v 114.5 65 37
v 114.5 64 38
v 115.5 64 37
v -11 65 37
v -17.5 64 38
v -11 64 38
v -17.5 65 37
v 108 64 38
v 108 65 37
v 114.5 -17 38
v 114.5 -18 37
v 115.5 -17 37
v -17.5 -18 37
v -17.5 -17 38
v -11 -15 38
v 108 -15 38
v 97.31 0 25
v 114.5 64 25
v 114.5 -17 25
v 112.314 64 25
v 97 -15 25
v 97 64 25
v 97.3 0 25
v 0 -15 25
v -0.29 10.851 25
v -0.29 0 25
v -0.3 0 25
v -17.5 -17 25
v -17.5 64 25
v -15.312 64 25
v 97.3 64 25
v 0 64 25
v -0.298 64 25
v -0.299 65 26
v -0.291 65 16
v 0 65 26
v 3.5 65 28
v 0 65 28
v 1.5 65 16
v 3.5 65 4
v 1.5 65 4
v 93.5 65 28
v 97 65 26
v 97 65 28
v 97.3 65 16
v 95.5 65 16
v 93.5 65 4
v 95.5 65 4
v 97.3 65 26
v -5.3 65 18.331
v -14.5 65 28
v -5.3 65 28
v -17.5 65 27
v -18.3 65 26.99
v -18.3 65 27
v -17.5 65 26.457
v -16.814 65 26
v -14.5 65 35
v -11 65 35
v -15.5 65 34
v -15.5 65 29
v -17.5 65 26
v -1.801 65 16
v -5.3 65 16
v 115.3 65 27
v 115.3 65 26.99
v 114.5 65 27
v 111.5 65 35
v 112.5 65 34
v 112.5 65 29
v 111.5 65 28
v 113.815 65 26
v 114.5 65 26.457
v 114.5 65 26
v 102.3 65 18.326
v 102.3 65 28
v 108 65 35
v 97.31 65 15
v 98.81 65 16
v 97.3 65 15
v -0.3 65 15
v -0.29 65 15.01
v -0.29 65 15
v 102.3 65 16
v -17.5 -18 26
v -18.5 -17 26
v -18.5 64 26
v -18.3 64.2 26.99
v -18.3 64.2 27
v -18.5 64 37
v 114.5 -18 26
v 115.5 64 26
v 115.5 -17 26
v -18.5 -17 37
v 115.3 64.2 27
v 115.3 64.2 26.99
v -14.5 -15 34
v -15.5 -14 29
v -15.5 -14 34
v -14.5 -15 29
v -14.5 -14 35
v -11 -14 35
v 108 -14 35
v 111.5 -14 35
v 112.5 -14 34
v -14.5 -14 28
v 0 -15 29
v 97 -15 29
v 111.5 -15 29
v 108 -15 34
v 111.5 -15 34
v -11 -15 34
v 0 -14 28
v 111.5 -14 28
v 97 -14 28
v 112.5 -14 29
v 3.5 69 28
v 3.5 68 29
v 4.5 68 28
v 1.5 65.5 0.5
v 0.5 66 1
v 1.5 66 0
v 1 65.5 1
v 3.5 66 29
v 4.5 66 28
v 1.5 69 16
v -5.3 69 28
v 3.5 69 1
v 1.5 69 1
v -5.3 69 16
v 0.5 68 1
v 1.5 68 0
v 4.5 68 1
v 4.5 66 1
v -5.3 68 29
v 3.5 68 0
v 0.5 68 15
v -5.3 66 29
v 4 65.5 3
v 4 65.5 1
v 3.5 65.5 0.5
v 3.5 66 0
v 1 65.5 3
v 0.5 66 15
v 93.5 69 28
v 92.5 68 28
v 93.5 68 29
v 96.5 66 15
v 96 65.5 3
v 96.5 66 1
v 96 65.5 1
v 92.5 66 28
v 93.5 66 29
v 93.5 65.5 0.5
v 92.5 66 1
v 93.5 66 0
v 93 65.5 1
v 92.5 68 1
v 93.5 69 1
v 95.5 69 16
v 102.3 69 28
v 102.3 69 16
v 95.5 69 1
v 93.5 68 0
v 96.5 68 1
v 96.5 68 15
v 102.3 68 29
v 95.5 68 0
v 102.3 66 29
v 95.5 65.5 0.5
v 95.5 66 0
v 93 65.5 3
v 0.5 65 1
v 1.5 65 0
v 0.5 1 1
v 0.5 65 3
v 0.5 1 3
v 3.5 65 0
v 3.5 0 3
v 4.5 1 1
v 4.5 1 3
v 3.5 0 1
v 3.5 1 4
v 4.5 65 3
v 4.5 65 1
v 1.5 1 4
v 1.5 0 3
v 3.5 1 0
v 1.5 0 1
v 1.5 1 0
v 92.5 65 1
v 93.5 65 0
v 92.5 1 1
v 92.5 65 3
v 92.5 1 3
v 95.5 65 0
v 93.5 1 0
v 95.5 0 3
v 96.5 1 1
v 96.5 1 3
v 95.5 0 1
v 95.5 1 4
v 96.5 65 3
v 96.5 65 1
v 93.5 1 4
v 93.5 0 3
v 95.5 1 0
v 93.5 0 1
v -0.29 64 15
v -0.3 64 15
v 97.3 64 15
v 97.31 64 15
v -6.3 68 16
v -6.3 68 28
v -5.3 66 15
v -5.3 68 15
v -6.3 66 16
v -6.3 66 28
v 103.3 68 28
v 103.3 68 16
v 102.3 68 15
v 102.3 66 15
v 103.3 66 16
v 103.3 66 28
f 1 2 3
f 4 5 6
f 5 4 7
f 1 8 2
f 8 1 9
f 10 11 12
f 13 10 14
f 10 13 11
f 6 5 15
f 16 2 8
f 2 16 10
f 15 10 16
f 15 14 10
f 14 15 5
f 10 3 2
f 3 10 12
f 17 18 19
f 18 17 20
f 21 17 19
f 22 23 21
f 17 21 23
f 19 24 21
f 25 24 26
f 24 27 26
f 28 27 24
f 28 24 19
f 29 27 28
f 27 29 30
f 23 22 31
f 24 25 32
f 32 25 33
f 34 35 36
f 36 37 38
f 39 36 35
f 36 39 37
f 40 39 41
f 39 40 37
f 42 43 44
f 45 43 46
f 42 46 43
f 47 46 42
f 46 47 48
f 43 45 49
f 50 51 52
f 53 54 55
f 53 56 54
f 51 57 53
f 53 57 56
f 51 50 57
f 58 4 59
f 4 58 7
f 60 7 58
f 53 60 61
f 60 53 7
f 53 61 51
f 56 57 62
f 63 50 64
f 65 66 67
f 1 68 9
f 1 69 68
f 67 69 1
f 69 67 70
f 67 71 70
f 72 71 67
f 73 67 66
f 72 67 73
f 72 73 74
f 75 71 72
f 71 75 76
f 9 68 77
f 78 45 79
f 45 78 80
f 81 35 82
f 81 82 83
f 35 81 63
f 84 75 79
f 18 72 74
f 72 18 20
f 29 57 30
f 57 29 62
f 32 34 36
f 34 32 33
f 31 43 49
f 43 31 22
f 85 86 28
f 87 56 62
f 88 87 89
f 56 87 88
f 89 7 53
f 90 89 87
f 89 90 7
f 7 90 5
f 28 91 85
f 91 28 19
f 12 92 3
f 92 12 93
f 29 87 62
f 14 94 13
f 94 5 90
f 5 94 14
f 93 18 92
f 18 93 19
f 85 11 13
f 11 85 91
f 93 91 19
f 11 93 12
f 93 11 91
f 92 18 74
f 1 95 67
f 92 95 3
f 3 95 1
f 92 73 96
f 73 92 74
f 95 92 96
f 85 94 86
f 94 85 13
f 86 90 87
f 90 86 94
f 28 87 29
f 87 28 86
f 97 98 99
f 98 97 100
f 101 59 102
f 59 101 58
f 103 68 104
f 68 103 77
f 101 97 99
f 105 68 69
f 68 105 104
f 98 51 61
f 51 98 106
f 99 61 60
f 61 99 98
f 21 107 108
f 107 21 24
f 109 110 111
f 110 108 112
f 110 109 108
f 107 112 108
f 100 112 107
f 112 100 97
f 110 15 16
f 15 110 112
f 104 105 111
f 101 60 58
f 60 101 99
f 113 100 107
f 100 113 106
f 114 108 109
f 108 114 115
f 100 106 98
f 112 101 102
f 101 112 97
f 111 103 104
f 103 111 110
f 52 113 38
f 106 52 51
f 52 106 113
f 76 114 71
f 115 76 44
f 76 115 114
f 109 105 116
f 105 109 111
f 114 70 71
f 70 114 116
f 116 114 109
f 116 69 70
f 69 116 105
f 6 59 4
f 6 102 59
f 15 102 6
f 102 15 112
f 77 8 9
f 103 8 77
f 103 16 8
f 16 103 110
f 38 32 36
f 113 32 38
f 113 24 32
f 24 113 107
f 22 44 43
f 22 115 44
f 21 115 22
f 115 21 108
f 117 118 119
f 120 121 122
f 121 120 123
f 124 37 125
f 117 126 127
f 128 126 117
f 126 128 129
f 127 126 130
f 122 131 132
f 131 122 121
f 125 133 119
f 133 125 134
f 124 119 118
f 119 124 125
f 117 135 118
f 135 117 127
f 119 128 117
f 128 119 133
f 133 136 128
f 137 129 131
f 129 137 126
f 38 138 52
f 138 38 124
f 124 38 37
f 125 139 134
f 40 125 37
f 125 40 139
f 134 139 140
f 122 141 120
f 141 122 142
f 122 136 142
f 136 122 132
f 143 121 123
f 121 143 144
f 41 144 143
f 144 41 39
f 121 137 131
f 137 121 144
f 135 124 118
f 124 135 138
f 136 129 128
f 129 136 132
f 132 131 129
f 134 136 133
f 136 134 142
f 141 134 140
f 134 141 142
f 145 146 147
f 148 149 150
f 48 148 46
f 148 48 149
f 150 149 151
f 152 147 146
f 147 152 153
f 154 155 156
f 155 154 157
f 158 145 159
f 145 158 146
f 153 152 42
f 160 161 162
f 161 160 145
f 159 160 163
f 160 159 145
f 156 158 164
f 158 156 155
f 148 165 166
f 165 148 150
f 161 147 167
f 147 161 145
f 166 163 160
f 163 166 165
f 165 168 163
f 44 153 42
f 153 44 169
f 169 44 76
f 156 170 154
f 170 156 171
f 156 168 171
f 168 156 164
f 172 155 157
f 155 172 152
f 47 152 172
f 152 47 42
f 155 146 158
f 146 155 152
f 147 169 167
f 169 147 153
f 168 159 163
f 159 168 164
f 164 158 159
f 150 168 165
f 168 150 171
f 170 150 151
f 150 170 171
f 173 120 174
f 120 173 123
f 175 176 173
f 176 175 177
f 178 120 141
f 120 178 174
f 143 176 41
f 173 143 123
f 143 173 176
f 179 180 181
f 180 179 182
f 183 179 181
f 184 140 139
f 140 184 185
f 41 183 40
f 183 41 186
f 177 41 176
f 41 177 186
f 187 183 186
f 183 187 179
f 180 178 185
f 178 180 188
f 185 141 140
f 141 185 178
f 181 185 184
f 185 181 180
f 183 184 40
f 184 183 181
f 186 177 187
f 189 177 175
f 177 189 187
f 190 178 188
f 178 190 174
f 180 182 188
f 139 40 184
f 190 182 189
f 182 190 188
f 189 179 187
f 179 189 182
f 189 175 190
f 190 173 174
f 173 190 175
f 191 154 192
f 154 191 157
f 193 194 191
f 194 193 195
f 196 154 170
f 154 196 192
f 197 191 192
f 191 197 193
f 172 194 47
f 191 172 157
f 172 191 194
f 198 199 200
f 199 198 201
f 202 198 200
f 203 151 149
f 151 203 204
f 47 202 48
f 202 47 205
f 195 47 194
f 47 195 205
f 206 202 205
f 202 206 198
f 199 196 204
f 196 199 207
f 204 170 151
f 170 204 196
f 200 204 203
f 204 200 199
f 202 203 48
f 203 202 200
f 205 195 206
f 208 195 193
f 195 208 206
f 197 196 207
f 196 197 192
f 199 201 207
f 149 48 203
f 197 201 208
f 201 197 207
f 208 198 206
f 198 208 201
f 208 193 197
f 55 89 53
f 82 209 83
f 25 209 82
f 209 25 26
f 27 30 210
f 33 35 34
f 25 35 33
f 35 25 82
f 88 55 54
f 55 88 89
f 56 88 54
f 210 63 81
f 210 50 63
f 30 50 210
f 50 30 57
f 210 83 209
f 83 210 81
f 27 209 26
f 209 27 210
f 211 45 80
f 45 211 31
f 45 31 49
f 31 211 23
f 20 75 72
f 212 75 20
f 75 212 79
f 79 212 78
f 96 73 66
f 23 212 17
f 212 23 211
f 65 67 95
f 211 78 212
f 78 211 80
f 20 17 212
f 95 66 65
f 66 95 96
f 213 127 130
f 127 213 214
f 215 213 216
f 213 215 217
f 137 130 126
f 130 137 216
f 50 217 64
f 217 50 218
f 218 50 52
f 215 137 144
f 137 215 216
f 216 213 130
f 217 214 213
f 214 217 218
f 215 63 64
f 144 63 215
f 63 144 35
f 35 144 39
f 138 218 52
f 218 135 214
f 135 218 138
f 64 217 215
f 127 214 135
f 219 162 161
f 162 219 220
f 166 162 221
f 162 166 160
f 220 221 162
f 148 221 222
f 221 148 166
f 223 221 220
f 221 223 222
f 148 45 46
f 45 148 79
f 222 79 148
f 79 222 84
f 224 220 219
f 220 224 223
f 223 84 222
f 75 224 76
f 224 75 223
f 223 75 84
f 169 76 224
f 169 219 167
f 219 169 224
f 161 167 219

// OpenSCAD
// ============================================================
// PRINT PROFILE
// ------------------------------------------------------------
// Material:    PETG Basic — matches PhoneHolder.scad; this part clips onto
//               that holder and both should tolerate the same environment.
// Nozzle:      0.4mm.
// Quality:     0.20mm Standard.
// Infill:      20% grid — lighter load than the primary (no screw pull-out
//               force), but the two corner brackets are a stress
//               concentration, so don't drop below this without testing.
// Orientation: print with the back face (the pocket wall that mates flush
//               against PhoneHolder.scad's front face, i.e. low Z) flat on
//               the bed. The corner brackets' hook tabs and guide tabs then
//               overhang forward/outward in a printable direction without
//               support.
// Known trade-off: hanging this off PhoneHolder.scad's top edge adds
//               forward/downward load to that holder's own mounting
//               screws (PhoneHolder.scad attaches via a flat back-wall
//               plate to a car mount arm, not a literal wall — see
//               PhoneHolder.scad's own header comment on screw pull-out
//               orientation) — this makes that existing marginal axis
//               worse. Not a blocker, just something to be aware of.
// ============================================================

/* [Phone Pocket] */
pocket_width = 128;    // [50:1:200]
pocket_depth = 7;      // [3:0.5:20]
pocket_height = 80;    // [40:1:150]
wall_thickness = 3;    // [1:0.5:8]
chamfer = 1;           // [0:0.25:3]

/* [Primary Holder Reference Geometry - mirrors PhoneHolder.scad, update manually if that file changes] */
primary_width = 97;        // phone_width(87) + 2*wall_thickness(5) in PhoneHolder.scad
primary_height = 65;       // phone_height(70) - wall_thickness(5) in PhoneHolder.scad
primary_depth = 25;        // phone_depth(15) + 2*wall_thickness(5) in PhoneHolder.scad
primary_wing_width = 5;    // solid margin outside the primary's pocket/screen cutouts (= its own wall_thickness)

/* [front window additional width] */
open_width_adjust = 11;

/* [Clip / Hook] */
hook_tab_width = 4;        // [2:0.5:5] must stay < primary_wing_width
hook_bearing_depth = 25;   // [5:1:24]
hook_thickness = 4;        // [2:0.5:8]
guide_wall_thickness = 6;  // [1:0.5:10] X-thickness at the top, near the hook attachment point — the guide's thickest point
guide_tab_depth = 10;      // [5:1:24] Z-depth of hook_guide_connector's own reach, bridging hook_tab and guide_tab
guide_tip_depth = 0;       // [0:0.5:10] how far back (toward the primary) the bottom point reaches, must stay < guide_tab_depth
guide_clearance = 0.3;     // [0.1:0.05:1]

/* [Hidden] */
outer_width = pocket_width + 2*wall_thickness;
outer_depth = pocket_depth + 2*wall_thickness;
outer_height = pocket_height + wall_thickness;
offset_x = (outer_width - primary_width) / 2;
box_x0 = -offset_x;
box_y0 = primary_height - outer_height;
box_y1 = primary_height;
box_z0 = primary_depth;
box_z1 = primary_depth + outer_depth;
back_wall_overlap_z1 = box_z0 + 2; // 2mm past the box's own chamfered front face, for clean unions
guide_tip_epsilon = 0.01; // near-zero size standing in for a true point in guide_tab's hull(), avoids degenerate zero-size geometry
chamfered_overlap_z1 = back_wall_overlap_z1 + 2*chamfer; // extra margin for hook_tab/hook_guide_connector: their own corner-chamfer would otherwise eat into the overlap that back_wall_overlap_z1 is meant to guarantee

// octahedron used as the minkowski "brush" that chamfers every edge of a cube by 45 degrees
module octahedron(r) {
    polyhedron(
        points = [
            [ r, 0, 0], [-r, 0, 0],
            [ 0, r, 0], [ 0,-r, 0],
            [ 0, 0, r], [ 0, 0,-r]
        ],
        faces = [
            [0,2,4],[2,1,4],[1,3,4],[3,0,4],
            [0,3,5],[3,1,5],[1,2,5],[2,0,5]
        ]
    );
}

// drop-in replacement for cube(size) that chamfers all 12 edges by `c`
module chamfered_cube(size, c = chamfer) {
    minkowski() {
        translate([c, c, c])
        cube([size[0]-2*c, size[1]-2*c, size[2]-2*c]);
        octahedron(c);
    }
}

pocket_x0 = box_x0 + wall_thickness;
pocket_x1 = box_x0 + outer_width - wall_thickness;
pocket_y0 = box_y0 + wall_thickness;
pocket_y1 = box_y1 + 2; // overshoot past the box's own top so the opening is fully clear
pocket_z0 = box_z0 + wall_thickness;
pocket_z1 = box_z1 - wall_thickness;

// Open-frame cuts: both the front wall (viewer-facing, high Z) and the back
// wall (facing the primary, low Z) are removed only where they'd sit over
// the primary's own footprint (X 0..primary_width) — front so the unfolded
// phone's screen isn't covered there, back so the primary stays usable
// through the clip. Outside that width (the margins wider than the
// primary, where the clip brackets attach) both walls stay closed, giving
// the hook/guide brackets a solid box to root into instead of a thin
// sliver. The two side rails (X box_x0..pocket_x0 and pocket_x1..box_x1)
// and the bottom wall are untouched by either cut and stay fully closed
// regardless — these are what actually grip the phone's edges and stop it
// sliding out.
front_open_x0 = -1*open_width_adjust;
front_open_x1 = primary_width+open_width_adjust;
front_open_y0 = pocket_y0;
front_open_y1 = pocket_y1;
front_open_z0 = box_z1 - wall_thickness - 1;
front_open_z1 = box_z1 + 1;

back_open_x0 = 0;
back_open_x1 = primary_width;
back_open_y0 = pocket_y0;
back_open_y1 = pocket_y1;
back_open_z0 = box_z0 - 1;
back_open_z1 = box_z0 + wall_thickness + 1;

// A block resting on one of the primary's solid top-corner "wings"
// (Y = primary_height), extending back along the wing in Z and rising
// hook_thickness above it. Overlaps 2mm past the box's own front face
// (back_wall_overlap_z1) into solid material for a clean union — same
// overlap convention PhoneHolder.scad uses for its chamfer wedges.
// Chamfered (same octahedron/minkowski trick as the rest of the model)
// for a softened, finished look instead of sharp box edges.
module hook_tab(x0) {
    translate([x0, primary_height, primary_depth - hook_bearing_depth])
        chamfered_cube([hook_tab_width, hook_thickness, hook_bearing_depth + (chamfered_overlap_z1 - primary_depth)]);
}

// Connects to the far end of hook_tab (Z = primary_depth - hook_bearing_depth,
// its deepest reach) and drops straight down the Y axis to Y=0, the bottom
// of the primary — together with hook_tab's own horizontal run along Z,
// this forms an L-shaped hook profile (seen in the Y-Z plane). Same X range
// as hook_tab (x0 to x0+hook_tab_width) so it reads as one continuous beam
// bending downward, not a piece offset to the side. Overlaps 1mm into
// hook_tab's own Y range for a clean chamfered union (same reasoning as
// chamfered_overlap_z1 elsewhere).
module hook_drop(x0) {
    translate([x0, 0, primary_depth - hook_bearing_depth])
        chamfered_cube([hook_tab_width, primary_height + 1, hook_thickness]);
}

// A thin wall just outside one of the primary's side faces (X=0 or
// X=primary_width plane), with guide_clearance gap for a slip fit.
// near_x is the edge closest to the primary (fixed — this is the actual
// guiding contact surface, at guide_clearance off the primary's true edge).
// outward_sign (-1 for the left tab, +1 for the right) is which way is
// "away from the primary". Runs the full length of the primary's side edge
// (Y=0, its bottom, up to Y=primary_height, where it meets the hook) for
// lateral stability along the whole side, not just near the top.
//
// Wedge shape, tapered along two axes at once, thickest where it blends
// into this part's own solid mass and thinnest where it reaches out to the
// primary:
// - Y (top to bottom): full width at the top, near hook_guide_connector,
//   down to a genuine point at Y=0.
// - Z (at the top only): the extra outward width is concentrated where the
//   guide meets the solid back-wall block (Z near back_wall_overlap_z1,
//   already thick/closed there, see front_open/back_open above) — a
//   reinforcement rib should be thickest where it blends into the mass
//   it's reinforcing. It tapers down to a thin edge at Z = top_z0, the far
//   reach alongside the primary's own side face, since that edge only
//   needs to touch the primary for guiding, not carry bulk.
// This guide is lateral/twist stability only, not the hook — hook_tab
// (above) is a flat lip, and stays one.
// All three anchors below touch X=near_x somewhere (the bottom point
// entirely, the top-narrow point entirely, and the top-wide box's own
// inner edge), so the convex hull's boundary at X=near_x — the plane that
// actually presses against the primary — stays one continuous flat
// triangular face for the whole part, meeting the top-wide face at a
// single clean 90-degree edge, with every other face sloping smoothly
// away to the bottom point instead of stepping through extra edges.
module guide_tab(near_x, outward_sign) {
    top_z0 = primary_depth - guide_tab_depth; // far reach alongside the primary's own side face — thin edge
    tip_z0 = primary_depth - guide_tip_depth; // near the solid back-wall block
    z1 = back_wall_overlap_z1;

    top_far_x = near_x + outward_sign * guide_wall_thickness;

    hull() {
        // bottom point (Y=0), flush with near_x, near the solid back-wall block
        translate([near_x, 0, tip_z0])
            cube([guide_tip_epsilon, guide_tip_epsilon, max(z1-tip_z0, guide_tip_epsilon)]);

        // top-narrow: tapered to near_x (zero extra width), at the far reach alongside the primary's side face
        translate([near_x, primary_height - 1, top_z0])
            cube([guide_tip_epsilon, 1, guide_tip_epsilon]);

        // top-wide: full outward width, where it blends into the solid back-wall block
        translate([min(near_x, top_far_x), primary_height - 1, z1 - guide_tip_epsilon])
            cube([abs(top_far_x - near_x), 1, guide_tip_epsilon]);
    }
}

// The back-open cut (above) removes all frame material behind the hook
// tabs, since they sit over the primary's width — without this bridge each
// hook_tab would be a structurally disconnected island. This rib spans from
// the guide_tab's outer edge to the hook_tab's inner edge, overlapping both
// in Z, at the same height as hook_tab (Y = primary_height to
// primary_height + hook_thickness). It sits entirely above the primary's
// own top edge (Y > primary_height), so it doesn't cover the primary either.
// Chamfered like hook_tab, for the same softened, finished look.
module hook_guide_connector(x0, x1) {
    translate([x0, primary_height, primary_depth - guide_tab_depth])
        chamfered_cube([x1-x0, hook_thickness, guide_tab_depth + (chamfered_overlap_z1 - primary_depth)]);
}

union() {
    difference() {
        translate([box_x0, box_y0, box_z0])
            color("coral")
            chamfered_cube([outer_width, outer_height, outer_depth]);

        translate([pocket_x0, pocket_y0, pocket_z0])
            color("grey")
            chamfered_cube([pocket_x1-pocket_x0, pocket_y1-pocket_y0, pocket_z1-pocket_z0]);

        translate([front_open_x0, front_open_y0, front_open_z0])
            color("grey")
            cube([front_open_x1-front_open_x0, front_open_y1-front_open_y0, front_open_z1-front_open_z0]);

        translate([back_open_x0, back_open_y0, back_open_z0])
            color("grey")
            cube([back_open_x1-back_open_x0, back_open_y1-back_open_y0, back_open_z1-back_open_z0]);
    }

    color("green") hook_tab(0.5);                                       // left, X in [0.5, 4.5]
    color("green") hook_tab(primary_width - hook_tab_width - 0.5);      // right, X in [92.5, 96.5]

    color("red") hook_drop(0.5);                                        // left hook drop, X in [0.5, 4.5]
    color("red") hook_drop(primary_width - hook_tab_width - 0.5);       // right hook drop, X in [92.5, 96.5]

    // left: near edge at X=-guide_clearance (just outside X=0), tapering outward toward more negative X
    color("blue") guide_tab(-guide_clearance, -3);
    // right: near edge at X=primary_width+guide_clearance (just outside X=primary_width), tapering outward toward more positive X
    color("blue") guide_tab(primary_width + guide_clearance, 3);

    // bridges connecting each side's hook_tab to its guide_tab (see module comment above)
    color("purple") hook_guide_connector(-(guide_wall_thickness + guide_clearance), 0.5 + hook_tab_width);
    color("purple") hook_guide_connector(primary_width - hook_tab_width - 0.5, primary_width + guide_clearance + guide_wall_thickness);
}
